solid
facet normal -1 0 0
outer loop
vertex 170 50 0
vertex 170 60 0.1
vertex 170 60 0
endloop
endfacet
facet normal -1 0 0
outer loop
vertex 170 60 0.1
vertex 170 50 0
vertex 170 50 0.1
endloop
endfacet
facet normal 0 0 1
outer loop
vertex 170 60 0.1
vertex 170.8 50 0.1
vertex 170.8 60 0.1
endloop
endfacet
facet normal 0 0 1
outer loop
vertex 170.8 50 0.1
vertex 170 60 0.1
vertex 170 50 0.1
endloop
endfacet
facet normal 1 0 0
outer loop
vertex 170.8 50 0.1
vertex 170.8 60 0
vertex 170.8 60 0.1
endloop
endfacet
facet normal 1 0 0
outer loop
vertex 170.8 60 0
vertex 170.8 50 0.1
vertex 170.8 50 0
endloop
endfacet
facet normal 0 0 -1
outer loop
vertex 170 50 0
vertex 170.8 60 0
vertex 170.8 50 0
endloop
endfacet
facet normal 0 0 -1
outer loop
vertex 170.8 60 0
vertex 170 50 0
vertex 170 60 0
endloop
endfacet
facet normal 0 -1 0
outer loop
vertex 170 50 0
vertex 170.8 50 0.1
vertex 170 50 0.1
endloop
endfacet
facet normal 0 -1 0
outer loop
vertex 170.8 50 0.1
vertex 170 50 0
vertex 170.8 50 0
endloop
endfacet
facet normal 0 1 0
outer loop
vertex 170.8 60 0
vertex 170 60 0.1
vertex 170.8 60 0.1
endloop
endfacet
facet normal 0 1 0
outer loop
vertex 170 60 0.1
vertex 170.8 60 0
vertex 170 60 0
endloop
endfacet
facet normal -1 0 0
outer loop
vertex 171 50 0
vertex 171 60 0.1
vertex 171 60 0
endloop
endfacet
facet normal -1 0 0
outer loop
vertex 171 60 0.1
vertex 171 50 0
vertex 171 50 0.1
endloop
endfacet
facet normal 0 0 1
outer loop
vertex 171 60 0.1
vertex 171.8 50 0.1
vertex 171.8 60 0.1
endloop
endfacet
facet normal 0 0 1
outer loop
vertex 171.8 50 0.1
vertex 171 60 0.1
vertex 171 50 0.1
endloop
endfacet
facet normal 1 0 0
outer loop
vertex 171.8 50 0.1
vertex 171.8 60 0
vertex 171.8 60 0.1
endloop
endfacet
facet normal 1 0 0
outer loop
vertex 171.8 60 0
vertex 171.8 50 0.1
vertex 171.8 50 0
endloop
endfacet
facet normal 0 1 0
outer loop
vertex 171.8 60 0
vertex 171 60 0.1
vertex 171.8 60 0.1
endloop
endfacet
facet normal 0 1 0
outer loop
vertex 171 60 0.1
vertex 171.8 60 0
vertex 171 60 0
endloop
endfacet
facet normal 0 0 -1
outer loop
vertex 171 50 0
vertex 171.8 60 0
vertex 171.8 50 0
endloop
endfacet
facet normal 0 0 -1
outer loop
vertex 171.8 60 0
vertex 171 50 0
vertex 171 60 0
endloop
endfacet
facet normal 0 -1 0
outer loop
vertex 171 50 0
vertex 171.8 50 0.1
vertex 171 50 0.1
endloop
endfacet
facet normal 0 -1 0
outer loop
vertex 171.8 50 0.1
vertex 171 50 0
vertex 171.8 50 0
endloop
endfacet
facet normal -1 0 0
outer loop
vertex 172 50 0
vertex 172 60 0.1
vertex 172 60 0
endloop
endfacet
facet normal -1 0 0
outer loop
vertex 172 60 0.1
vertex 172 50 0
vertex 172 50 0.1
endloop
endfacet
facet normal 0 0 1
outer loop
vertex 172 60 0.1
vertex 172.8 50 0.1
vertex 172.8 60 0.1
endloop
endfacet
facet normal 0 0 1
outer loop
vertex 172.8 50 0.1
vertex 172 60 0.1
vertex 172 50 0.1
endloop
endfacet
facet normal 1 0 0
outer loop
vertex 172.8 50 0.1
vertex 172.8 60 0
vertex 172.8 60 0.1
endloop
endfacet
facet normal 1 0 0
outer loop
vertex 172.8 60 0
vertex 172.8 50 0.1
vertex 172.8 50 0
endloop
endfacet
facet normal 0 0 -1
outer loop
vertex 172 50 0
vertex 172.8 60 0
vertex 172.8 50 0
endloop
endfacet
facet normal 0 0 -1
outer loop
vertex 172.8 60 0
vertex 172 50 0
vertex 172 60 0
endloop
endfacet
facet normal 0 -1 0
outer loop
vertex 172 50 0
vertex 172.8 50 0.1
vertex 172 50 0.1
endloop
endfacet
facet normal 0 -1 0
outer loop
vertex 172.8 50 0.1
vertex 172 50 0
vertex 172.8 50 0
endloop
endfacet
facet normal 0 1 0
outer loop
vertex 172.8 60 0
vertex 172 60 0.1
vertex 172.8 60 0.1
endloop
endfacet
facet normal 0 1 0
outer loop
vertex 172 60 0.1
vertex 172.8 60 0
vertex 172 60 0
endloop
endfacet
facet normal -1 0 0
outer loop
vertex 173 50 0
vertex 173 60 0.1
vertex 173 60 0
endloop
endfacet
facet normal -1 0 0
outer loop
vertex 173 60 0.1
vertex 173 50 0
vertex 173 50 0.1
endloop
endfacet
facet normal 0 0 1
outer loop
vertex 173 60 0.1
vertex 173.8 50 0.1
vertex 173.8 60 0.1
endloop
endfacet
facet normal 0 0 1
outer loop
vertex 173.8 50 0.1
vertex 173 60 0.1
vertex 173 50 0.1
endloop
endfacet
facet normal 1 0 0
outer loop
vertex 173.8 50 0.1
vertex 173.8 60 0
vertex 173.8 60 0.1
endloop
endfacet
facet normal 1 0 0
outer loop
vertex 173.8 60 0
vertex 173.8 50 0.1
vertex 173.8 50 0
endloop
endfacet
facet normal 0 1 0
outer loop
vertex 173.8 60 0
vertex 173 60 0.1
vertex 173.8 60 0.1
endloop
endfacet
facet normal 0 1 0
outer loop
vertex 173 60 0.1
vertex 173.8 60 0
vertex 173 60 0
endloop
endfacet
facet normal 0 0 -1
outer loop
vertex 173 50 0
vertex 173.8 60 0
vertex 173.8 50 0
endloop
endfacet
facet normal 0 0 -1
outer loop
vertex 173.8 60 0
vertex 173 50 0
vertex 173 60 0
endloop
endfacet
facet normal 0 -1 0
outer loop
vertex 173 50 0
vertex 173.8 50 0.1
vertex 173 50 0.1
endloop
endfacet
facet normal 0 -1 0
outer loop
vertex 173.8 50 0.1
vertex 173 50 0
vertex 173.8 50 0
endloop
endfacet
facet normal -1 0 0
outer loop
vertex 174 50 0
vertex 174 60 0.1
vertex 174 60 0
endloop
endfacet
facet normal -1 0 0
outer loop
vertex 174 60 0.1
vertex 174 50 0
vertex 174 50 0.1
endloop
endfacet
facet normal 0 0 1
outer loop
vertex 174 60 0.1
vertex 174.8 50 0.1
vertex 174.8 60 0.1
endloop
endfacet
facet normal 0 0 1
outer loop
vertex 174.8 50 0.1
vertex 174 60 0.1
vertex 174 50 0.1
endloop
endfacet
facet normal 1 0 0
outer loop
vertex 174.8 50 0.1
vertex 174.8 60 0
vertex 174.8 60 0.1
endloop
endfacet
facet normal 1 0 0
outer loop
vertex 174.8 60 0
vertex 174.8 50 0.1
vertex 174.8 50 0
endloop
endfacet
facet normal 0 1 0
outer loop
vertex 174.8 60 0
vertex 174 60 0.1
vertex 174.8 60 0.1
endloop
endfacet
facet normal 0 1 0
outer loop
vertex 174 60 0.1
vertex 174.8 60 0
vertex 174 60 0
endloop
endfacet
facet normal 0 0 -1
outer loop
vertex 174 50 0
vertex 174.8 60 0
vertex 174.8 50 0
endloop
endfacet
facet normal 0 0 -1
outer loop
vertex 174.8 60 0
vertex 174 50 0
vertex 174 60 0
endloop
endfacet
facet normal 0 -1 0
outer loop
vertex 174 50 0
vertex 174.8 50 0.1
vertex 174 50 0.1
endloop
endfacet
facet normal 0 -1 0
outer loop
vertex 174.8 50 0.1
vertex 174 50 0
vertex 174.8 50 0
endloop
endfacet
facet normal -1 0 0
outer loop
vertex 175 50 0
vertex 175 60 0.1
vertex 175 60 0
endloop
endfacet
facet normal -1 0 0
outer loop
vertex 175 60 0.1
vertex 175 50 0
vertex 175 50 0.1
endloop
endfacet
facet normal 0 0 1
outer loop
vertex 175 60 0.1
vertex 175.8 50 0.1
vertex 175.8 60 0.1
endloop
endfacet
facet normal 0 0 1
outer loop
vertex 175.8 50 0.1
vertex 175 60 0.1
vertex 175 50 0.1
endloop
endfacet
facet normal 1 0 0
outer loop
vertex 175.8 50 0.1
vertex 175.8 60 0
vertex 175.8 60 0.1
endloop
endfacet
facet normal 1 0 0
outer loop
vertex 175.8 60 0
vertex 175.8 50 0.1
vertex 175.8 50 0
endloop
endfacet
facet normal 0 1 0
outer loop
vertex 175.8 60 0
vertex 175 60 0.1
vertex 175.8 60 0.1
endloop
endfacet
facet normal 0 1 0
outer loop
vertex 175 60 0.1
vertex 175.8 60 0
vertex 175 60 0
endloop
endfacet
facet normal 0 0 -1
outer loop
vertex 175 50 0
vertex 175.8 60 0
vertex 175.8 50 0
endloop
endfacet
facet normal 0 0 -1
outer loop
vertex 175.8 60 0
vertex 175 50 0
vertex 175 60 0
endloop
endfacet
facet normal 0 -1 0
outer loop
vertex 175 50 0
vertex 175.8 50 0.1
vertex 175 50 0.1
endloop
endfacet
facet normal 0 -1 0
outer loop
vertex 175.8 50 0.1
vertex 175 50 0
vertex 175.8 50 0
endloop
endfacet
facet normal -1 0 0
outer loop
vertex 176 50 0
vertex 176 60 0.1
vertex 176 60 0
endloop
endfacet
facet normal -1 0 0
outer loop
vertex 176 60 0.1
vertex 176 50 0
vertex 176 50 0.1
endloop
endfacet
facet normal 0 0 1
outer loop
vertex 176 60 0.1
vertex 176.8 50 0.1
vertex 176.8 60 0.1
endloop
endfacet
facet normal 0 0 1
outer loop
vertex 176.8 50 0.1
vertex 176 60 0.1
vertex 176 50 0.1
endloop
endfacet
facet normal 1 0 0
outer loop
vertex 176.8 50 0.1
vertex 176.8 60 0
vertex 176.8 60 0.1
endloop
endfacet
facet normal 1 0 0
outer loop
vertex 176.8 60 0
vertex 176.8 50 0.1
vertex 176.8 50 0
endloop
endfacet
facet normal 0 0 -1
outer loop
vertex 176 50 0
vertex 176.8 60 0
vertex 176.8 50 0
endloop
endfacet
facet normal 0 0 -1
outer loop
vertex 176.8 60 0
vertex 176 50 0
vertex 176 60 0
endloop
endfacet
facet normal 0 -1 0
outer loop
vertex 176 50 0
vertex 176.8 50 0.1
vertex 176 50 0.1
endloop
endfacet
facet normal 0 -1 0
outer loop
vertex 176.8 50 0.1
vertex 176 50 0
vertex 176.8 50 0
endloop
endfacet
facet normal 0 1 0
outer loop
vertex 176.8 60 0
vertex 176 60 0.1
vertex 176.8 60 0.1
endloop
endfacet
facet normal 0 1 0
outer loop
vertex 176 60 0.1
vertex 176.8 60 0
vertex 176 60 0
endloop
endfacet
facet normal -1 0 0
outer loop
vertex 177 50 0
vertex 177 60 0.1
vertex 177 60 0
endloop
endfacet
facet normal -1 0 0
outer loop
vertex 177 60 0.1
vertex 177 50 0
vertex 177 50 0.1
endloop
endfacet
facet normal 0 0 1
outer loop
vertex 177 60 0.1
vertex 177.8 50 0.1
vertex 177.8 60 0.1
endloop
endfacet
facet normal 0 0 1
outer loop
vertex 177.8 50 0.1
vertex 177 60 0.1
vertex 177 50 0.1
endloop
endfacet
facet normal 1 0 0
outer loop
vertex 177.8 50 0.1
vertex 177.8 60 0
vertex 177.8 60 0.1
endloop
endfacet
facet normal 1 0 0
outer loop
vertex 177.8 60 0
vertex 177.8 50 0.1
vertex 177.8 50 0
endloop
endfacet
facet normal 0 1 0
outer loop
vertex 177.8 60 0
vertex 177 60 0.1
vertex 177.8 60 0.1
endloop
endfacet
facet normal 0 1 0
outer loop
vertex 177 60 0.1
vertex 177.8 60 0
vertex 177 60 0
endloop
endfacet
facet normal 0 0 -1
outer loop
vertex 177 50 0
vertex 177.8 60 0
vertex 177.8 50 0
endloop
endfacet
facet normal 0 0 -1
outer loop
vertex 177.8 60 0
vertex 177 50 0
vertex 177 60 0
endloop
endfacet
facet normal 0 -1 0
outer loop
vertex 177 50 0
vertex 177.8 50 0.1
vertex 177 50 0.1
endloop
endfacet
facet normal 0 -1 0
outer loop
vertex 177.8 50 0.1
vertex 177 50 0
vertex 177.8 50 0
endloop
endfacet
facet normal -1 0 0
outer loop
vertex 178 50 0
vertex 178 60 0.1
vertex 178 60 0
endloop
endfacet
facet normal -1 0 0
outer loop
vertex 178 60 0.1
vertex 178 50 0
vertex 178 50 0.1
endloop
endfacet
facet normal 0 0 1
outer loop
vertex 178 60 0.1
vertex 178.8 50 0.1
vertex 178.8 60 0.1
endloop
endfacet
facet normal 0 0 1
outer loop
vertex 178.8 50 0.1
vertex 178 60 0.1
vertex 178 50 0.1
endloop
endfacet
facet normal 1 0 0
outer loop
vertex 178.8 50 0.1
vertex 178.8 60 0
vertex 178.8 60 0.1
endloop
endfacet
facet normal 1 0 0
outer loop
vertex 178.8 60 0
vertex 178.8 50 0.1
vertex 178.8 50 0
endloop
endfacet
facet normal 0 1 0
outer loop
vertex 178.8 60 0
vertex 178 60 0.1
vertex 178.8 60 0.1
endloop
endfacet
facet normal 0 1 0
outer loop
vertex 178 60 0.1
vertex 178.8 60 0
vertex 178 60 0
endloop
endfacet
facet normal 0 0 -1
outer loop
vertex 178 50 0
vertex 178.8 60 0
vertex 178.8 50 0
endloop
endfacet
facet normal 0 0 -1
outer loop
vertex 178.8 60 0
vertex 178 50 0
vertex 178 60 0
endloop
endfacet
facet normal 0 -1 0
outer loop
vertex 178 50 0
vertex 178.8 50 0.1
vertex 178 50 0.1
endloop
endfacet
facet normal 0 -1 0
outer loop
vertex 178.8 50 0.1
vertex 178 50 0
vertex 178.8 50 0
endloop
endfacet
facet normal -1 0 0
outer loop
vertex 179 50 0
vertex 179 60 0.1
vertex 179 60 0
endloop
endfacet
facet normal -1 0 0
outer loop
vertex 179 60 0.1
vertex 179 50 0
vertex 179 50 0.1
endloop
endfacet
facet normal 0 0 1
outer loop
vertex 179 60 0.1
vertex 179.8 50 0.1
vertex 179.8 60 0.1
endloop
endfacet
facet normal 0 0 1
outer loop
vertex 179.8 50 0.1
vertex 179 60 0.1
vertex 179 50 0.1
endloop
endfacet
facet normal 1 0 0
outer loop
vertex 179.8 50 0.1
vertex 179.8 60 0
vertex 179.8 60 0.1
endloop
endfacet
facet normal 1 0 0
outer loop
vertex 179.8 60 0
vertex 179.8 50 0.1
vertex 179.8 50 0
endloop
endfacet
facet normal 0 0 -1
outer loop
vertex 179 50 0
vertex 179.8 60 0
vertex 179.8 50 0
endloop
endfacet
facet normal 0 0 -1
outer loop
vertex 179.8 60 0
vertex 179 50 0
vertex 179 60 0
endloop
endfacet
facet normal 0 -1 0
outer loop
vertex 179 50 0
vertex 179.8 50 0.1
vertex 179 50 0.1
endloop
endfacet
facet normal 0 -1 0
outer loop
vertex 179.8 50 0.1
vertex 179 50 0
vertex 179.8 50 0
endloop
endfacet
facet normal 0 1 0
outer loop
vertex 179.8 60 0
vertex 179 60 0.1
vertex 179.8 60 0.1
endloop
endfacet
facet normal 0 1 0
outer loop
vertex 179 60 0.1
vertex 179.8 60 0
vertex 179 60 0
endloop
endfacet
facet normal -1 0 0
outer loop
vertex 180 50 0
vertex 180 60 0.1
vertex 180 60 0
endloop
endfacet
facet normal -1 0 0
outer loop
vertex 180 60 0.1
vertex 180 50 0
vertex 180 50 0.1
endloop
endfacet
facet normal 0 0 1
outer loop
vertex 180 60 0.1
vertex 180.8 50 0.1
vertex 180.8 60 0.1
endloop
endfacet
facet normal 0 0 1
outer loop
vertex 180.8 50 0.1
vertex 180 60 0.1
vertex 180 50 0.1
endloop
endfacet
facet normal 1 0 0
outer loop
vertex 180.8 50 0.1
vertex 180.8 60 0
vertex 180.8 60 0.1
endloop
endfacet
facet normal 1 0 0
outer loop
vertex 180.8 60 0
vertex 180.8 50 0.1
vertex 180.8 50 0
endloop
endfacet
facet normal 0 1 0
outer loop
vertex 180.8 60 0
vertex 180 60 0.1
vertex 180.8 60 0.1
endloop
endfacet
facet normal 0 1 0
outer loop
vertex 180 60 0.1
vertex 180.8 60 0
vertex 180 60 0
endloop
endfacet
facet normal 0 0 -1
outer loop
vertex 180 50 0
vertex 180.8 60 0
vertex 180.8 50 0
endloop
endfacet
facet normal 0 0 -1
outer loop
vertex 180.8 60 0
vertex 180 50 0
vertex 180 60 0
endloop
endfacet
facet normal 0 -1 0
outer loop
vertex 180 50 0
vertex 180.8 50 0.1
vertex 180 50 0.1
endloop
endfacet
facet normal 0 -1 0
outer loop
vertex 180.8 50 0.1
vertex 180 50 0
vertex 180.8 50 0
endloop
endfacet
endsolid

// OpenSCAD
translate([10+160,10+40,0])
        for (i = [0 : 10]){
            translate([i,0,0])
                cube(size = [0.8,10,0.1]);
    }
